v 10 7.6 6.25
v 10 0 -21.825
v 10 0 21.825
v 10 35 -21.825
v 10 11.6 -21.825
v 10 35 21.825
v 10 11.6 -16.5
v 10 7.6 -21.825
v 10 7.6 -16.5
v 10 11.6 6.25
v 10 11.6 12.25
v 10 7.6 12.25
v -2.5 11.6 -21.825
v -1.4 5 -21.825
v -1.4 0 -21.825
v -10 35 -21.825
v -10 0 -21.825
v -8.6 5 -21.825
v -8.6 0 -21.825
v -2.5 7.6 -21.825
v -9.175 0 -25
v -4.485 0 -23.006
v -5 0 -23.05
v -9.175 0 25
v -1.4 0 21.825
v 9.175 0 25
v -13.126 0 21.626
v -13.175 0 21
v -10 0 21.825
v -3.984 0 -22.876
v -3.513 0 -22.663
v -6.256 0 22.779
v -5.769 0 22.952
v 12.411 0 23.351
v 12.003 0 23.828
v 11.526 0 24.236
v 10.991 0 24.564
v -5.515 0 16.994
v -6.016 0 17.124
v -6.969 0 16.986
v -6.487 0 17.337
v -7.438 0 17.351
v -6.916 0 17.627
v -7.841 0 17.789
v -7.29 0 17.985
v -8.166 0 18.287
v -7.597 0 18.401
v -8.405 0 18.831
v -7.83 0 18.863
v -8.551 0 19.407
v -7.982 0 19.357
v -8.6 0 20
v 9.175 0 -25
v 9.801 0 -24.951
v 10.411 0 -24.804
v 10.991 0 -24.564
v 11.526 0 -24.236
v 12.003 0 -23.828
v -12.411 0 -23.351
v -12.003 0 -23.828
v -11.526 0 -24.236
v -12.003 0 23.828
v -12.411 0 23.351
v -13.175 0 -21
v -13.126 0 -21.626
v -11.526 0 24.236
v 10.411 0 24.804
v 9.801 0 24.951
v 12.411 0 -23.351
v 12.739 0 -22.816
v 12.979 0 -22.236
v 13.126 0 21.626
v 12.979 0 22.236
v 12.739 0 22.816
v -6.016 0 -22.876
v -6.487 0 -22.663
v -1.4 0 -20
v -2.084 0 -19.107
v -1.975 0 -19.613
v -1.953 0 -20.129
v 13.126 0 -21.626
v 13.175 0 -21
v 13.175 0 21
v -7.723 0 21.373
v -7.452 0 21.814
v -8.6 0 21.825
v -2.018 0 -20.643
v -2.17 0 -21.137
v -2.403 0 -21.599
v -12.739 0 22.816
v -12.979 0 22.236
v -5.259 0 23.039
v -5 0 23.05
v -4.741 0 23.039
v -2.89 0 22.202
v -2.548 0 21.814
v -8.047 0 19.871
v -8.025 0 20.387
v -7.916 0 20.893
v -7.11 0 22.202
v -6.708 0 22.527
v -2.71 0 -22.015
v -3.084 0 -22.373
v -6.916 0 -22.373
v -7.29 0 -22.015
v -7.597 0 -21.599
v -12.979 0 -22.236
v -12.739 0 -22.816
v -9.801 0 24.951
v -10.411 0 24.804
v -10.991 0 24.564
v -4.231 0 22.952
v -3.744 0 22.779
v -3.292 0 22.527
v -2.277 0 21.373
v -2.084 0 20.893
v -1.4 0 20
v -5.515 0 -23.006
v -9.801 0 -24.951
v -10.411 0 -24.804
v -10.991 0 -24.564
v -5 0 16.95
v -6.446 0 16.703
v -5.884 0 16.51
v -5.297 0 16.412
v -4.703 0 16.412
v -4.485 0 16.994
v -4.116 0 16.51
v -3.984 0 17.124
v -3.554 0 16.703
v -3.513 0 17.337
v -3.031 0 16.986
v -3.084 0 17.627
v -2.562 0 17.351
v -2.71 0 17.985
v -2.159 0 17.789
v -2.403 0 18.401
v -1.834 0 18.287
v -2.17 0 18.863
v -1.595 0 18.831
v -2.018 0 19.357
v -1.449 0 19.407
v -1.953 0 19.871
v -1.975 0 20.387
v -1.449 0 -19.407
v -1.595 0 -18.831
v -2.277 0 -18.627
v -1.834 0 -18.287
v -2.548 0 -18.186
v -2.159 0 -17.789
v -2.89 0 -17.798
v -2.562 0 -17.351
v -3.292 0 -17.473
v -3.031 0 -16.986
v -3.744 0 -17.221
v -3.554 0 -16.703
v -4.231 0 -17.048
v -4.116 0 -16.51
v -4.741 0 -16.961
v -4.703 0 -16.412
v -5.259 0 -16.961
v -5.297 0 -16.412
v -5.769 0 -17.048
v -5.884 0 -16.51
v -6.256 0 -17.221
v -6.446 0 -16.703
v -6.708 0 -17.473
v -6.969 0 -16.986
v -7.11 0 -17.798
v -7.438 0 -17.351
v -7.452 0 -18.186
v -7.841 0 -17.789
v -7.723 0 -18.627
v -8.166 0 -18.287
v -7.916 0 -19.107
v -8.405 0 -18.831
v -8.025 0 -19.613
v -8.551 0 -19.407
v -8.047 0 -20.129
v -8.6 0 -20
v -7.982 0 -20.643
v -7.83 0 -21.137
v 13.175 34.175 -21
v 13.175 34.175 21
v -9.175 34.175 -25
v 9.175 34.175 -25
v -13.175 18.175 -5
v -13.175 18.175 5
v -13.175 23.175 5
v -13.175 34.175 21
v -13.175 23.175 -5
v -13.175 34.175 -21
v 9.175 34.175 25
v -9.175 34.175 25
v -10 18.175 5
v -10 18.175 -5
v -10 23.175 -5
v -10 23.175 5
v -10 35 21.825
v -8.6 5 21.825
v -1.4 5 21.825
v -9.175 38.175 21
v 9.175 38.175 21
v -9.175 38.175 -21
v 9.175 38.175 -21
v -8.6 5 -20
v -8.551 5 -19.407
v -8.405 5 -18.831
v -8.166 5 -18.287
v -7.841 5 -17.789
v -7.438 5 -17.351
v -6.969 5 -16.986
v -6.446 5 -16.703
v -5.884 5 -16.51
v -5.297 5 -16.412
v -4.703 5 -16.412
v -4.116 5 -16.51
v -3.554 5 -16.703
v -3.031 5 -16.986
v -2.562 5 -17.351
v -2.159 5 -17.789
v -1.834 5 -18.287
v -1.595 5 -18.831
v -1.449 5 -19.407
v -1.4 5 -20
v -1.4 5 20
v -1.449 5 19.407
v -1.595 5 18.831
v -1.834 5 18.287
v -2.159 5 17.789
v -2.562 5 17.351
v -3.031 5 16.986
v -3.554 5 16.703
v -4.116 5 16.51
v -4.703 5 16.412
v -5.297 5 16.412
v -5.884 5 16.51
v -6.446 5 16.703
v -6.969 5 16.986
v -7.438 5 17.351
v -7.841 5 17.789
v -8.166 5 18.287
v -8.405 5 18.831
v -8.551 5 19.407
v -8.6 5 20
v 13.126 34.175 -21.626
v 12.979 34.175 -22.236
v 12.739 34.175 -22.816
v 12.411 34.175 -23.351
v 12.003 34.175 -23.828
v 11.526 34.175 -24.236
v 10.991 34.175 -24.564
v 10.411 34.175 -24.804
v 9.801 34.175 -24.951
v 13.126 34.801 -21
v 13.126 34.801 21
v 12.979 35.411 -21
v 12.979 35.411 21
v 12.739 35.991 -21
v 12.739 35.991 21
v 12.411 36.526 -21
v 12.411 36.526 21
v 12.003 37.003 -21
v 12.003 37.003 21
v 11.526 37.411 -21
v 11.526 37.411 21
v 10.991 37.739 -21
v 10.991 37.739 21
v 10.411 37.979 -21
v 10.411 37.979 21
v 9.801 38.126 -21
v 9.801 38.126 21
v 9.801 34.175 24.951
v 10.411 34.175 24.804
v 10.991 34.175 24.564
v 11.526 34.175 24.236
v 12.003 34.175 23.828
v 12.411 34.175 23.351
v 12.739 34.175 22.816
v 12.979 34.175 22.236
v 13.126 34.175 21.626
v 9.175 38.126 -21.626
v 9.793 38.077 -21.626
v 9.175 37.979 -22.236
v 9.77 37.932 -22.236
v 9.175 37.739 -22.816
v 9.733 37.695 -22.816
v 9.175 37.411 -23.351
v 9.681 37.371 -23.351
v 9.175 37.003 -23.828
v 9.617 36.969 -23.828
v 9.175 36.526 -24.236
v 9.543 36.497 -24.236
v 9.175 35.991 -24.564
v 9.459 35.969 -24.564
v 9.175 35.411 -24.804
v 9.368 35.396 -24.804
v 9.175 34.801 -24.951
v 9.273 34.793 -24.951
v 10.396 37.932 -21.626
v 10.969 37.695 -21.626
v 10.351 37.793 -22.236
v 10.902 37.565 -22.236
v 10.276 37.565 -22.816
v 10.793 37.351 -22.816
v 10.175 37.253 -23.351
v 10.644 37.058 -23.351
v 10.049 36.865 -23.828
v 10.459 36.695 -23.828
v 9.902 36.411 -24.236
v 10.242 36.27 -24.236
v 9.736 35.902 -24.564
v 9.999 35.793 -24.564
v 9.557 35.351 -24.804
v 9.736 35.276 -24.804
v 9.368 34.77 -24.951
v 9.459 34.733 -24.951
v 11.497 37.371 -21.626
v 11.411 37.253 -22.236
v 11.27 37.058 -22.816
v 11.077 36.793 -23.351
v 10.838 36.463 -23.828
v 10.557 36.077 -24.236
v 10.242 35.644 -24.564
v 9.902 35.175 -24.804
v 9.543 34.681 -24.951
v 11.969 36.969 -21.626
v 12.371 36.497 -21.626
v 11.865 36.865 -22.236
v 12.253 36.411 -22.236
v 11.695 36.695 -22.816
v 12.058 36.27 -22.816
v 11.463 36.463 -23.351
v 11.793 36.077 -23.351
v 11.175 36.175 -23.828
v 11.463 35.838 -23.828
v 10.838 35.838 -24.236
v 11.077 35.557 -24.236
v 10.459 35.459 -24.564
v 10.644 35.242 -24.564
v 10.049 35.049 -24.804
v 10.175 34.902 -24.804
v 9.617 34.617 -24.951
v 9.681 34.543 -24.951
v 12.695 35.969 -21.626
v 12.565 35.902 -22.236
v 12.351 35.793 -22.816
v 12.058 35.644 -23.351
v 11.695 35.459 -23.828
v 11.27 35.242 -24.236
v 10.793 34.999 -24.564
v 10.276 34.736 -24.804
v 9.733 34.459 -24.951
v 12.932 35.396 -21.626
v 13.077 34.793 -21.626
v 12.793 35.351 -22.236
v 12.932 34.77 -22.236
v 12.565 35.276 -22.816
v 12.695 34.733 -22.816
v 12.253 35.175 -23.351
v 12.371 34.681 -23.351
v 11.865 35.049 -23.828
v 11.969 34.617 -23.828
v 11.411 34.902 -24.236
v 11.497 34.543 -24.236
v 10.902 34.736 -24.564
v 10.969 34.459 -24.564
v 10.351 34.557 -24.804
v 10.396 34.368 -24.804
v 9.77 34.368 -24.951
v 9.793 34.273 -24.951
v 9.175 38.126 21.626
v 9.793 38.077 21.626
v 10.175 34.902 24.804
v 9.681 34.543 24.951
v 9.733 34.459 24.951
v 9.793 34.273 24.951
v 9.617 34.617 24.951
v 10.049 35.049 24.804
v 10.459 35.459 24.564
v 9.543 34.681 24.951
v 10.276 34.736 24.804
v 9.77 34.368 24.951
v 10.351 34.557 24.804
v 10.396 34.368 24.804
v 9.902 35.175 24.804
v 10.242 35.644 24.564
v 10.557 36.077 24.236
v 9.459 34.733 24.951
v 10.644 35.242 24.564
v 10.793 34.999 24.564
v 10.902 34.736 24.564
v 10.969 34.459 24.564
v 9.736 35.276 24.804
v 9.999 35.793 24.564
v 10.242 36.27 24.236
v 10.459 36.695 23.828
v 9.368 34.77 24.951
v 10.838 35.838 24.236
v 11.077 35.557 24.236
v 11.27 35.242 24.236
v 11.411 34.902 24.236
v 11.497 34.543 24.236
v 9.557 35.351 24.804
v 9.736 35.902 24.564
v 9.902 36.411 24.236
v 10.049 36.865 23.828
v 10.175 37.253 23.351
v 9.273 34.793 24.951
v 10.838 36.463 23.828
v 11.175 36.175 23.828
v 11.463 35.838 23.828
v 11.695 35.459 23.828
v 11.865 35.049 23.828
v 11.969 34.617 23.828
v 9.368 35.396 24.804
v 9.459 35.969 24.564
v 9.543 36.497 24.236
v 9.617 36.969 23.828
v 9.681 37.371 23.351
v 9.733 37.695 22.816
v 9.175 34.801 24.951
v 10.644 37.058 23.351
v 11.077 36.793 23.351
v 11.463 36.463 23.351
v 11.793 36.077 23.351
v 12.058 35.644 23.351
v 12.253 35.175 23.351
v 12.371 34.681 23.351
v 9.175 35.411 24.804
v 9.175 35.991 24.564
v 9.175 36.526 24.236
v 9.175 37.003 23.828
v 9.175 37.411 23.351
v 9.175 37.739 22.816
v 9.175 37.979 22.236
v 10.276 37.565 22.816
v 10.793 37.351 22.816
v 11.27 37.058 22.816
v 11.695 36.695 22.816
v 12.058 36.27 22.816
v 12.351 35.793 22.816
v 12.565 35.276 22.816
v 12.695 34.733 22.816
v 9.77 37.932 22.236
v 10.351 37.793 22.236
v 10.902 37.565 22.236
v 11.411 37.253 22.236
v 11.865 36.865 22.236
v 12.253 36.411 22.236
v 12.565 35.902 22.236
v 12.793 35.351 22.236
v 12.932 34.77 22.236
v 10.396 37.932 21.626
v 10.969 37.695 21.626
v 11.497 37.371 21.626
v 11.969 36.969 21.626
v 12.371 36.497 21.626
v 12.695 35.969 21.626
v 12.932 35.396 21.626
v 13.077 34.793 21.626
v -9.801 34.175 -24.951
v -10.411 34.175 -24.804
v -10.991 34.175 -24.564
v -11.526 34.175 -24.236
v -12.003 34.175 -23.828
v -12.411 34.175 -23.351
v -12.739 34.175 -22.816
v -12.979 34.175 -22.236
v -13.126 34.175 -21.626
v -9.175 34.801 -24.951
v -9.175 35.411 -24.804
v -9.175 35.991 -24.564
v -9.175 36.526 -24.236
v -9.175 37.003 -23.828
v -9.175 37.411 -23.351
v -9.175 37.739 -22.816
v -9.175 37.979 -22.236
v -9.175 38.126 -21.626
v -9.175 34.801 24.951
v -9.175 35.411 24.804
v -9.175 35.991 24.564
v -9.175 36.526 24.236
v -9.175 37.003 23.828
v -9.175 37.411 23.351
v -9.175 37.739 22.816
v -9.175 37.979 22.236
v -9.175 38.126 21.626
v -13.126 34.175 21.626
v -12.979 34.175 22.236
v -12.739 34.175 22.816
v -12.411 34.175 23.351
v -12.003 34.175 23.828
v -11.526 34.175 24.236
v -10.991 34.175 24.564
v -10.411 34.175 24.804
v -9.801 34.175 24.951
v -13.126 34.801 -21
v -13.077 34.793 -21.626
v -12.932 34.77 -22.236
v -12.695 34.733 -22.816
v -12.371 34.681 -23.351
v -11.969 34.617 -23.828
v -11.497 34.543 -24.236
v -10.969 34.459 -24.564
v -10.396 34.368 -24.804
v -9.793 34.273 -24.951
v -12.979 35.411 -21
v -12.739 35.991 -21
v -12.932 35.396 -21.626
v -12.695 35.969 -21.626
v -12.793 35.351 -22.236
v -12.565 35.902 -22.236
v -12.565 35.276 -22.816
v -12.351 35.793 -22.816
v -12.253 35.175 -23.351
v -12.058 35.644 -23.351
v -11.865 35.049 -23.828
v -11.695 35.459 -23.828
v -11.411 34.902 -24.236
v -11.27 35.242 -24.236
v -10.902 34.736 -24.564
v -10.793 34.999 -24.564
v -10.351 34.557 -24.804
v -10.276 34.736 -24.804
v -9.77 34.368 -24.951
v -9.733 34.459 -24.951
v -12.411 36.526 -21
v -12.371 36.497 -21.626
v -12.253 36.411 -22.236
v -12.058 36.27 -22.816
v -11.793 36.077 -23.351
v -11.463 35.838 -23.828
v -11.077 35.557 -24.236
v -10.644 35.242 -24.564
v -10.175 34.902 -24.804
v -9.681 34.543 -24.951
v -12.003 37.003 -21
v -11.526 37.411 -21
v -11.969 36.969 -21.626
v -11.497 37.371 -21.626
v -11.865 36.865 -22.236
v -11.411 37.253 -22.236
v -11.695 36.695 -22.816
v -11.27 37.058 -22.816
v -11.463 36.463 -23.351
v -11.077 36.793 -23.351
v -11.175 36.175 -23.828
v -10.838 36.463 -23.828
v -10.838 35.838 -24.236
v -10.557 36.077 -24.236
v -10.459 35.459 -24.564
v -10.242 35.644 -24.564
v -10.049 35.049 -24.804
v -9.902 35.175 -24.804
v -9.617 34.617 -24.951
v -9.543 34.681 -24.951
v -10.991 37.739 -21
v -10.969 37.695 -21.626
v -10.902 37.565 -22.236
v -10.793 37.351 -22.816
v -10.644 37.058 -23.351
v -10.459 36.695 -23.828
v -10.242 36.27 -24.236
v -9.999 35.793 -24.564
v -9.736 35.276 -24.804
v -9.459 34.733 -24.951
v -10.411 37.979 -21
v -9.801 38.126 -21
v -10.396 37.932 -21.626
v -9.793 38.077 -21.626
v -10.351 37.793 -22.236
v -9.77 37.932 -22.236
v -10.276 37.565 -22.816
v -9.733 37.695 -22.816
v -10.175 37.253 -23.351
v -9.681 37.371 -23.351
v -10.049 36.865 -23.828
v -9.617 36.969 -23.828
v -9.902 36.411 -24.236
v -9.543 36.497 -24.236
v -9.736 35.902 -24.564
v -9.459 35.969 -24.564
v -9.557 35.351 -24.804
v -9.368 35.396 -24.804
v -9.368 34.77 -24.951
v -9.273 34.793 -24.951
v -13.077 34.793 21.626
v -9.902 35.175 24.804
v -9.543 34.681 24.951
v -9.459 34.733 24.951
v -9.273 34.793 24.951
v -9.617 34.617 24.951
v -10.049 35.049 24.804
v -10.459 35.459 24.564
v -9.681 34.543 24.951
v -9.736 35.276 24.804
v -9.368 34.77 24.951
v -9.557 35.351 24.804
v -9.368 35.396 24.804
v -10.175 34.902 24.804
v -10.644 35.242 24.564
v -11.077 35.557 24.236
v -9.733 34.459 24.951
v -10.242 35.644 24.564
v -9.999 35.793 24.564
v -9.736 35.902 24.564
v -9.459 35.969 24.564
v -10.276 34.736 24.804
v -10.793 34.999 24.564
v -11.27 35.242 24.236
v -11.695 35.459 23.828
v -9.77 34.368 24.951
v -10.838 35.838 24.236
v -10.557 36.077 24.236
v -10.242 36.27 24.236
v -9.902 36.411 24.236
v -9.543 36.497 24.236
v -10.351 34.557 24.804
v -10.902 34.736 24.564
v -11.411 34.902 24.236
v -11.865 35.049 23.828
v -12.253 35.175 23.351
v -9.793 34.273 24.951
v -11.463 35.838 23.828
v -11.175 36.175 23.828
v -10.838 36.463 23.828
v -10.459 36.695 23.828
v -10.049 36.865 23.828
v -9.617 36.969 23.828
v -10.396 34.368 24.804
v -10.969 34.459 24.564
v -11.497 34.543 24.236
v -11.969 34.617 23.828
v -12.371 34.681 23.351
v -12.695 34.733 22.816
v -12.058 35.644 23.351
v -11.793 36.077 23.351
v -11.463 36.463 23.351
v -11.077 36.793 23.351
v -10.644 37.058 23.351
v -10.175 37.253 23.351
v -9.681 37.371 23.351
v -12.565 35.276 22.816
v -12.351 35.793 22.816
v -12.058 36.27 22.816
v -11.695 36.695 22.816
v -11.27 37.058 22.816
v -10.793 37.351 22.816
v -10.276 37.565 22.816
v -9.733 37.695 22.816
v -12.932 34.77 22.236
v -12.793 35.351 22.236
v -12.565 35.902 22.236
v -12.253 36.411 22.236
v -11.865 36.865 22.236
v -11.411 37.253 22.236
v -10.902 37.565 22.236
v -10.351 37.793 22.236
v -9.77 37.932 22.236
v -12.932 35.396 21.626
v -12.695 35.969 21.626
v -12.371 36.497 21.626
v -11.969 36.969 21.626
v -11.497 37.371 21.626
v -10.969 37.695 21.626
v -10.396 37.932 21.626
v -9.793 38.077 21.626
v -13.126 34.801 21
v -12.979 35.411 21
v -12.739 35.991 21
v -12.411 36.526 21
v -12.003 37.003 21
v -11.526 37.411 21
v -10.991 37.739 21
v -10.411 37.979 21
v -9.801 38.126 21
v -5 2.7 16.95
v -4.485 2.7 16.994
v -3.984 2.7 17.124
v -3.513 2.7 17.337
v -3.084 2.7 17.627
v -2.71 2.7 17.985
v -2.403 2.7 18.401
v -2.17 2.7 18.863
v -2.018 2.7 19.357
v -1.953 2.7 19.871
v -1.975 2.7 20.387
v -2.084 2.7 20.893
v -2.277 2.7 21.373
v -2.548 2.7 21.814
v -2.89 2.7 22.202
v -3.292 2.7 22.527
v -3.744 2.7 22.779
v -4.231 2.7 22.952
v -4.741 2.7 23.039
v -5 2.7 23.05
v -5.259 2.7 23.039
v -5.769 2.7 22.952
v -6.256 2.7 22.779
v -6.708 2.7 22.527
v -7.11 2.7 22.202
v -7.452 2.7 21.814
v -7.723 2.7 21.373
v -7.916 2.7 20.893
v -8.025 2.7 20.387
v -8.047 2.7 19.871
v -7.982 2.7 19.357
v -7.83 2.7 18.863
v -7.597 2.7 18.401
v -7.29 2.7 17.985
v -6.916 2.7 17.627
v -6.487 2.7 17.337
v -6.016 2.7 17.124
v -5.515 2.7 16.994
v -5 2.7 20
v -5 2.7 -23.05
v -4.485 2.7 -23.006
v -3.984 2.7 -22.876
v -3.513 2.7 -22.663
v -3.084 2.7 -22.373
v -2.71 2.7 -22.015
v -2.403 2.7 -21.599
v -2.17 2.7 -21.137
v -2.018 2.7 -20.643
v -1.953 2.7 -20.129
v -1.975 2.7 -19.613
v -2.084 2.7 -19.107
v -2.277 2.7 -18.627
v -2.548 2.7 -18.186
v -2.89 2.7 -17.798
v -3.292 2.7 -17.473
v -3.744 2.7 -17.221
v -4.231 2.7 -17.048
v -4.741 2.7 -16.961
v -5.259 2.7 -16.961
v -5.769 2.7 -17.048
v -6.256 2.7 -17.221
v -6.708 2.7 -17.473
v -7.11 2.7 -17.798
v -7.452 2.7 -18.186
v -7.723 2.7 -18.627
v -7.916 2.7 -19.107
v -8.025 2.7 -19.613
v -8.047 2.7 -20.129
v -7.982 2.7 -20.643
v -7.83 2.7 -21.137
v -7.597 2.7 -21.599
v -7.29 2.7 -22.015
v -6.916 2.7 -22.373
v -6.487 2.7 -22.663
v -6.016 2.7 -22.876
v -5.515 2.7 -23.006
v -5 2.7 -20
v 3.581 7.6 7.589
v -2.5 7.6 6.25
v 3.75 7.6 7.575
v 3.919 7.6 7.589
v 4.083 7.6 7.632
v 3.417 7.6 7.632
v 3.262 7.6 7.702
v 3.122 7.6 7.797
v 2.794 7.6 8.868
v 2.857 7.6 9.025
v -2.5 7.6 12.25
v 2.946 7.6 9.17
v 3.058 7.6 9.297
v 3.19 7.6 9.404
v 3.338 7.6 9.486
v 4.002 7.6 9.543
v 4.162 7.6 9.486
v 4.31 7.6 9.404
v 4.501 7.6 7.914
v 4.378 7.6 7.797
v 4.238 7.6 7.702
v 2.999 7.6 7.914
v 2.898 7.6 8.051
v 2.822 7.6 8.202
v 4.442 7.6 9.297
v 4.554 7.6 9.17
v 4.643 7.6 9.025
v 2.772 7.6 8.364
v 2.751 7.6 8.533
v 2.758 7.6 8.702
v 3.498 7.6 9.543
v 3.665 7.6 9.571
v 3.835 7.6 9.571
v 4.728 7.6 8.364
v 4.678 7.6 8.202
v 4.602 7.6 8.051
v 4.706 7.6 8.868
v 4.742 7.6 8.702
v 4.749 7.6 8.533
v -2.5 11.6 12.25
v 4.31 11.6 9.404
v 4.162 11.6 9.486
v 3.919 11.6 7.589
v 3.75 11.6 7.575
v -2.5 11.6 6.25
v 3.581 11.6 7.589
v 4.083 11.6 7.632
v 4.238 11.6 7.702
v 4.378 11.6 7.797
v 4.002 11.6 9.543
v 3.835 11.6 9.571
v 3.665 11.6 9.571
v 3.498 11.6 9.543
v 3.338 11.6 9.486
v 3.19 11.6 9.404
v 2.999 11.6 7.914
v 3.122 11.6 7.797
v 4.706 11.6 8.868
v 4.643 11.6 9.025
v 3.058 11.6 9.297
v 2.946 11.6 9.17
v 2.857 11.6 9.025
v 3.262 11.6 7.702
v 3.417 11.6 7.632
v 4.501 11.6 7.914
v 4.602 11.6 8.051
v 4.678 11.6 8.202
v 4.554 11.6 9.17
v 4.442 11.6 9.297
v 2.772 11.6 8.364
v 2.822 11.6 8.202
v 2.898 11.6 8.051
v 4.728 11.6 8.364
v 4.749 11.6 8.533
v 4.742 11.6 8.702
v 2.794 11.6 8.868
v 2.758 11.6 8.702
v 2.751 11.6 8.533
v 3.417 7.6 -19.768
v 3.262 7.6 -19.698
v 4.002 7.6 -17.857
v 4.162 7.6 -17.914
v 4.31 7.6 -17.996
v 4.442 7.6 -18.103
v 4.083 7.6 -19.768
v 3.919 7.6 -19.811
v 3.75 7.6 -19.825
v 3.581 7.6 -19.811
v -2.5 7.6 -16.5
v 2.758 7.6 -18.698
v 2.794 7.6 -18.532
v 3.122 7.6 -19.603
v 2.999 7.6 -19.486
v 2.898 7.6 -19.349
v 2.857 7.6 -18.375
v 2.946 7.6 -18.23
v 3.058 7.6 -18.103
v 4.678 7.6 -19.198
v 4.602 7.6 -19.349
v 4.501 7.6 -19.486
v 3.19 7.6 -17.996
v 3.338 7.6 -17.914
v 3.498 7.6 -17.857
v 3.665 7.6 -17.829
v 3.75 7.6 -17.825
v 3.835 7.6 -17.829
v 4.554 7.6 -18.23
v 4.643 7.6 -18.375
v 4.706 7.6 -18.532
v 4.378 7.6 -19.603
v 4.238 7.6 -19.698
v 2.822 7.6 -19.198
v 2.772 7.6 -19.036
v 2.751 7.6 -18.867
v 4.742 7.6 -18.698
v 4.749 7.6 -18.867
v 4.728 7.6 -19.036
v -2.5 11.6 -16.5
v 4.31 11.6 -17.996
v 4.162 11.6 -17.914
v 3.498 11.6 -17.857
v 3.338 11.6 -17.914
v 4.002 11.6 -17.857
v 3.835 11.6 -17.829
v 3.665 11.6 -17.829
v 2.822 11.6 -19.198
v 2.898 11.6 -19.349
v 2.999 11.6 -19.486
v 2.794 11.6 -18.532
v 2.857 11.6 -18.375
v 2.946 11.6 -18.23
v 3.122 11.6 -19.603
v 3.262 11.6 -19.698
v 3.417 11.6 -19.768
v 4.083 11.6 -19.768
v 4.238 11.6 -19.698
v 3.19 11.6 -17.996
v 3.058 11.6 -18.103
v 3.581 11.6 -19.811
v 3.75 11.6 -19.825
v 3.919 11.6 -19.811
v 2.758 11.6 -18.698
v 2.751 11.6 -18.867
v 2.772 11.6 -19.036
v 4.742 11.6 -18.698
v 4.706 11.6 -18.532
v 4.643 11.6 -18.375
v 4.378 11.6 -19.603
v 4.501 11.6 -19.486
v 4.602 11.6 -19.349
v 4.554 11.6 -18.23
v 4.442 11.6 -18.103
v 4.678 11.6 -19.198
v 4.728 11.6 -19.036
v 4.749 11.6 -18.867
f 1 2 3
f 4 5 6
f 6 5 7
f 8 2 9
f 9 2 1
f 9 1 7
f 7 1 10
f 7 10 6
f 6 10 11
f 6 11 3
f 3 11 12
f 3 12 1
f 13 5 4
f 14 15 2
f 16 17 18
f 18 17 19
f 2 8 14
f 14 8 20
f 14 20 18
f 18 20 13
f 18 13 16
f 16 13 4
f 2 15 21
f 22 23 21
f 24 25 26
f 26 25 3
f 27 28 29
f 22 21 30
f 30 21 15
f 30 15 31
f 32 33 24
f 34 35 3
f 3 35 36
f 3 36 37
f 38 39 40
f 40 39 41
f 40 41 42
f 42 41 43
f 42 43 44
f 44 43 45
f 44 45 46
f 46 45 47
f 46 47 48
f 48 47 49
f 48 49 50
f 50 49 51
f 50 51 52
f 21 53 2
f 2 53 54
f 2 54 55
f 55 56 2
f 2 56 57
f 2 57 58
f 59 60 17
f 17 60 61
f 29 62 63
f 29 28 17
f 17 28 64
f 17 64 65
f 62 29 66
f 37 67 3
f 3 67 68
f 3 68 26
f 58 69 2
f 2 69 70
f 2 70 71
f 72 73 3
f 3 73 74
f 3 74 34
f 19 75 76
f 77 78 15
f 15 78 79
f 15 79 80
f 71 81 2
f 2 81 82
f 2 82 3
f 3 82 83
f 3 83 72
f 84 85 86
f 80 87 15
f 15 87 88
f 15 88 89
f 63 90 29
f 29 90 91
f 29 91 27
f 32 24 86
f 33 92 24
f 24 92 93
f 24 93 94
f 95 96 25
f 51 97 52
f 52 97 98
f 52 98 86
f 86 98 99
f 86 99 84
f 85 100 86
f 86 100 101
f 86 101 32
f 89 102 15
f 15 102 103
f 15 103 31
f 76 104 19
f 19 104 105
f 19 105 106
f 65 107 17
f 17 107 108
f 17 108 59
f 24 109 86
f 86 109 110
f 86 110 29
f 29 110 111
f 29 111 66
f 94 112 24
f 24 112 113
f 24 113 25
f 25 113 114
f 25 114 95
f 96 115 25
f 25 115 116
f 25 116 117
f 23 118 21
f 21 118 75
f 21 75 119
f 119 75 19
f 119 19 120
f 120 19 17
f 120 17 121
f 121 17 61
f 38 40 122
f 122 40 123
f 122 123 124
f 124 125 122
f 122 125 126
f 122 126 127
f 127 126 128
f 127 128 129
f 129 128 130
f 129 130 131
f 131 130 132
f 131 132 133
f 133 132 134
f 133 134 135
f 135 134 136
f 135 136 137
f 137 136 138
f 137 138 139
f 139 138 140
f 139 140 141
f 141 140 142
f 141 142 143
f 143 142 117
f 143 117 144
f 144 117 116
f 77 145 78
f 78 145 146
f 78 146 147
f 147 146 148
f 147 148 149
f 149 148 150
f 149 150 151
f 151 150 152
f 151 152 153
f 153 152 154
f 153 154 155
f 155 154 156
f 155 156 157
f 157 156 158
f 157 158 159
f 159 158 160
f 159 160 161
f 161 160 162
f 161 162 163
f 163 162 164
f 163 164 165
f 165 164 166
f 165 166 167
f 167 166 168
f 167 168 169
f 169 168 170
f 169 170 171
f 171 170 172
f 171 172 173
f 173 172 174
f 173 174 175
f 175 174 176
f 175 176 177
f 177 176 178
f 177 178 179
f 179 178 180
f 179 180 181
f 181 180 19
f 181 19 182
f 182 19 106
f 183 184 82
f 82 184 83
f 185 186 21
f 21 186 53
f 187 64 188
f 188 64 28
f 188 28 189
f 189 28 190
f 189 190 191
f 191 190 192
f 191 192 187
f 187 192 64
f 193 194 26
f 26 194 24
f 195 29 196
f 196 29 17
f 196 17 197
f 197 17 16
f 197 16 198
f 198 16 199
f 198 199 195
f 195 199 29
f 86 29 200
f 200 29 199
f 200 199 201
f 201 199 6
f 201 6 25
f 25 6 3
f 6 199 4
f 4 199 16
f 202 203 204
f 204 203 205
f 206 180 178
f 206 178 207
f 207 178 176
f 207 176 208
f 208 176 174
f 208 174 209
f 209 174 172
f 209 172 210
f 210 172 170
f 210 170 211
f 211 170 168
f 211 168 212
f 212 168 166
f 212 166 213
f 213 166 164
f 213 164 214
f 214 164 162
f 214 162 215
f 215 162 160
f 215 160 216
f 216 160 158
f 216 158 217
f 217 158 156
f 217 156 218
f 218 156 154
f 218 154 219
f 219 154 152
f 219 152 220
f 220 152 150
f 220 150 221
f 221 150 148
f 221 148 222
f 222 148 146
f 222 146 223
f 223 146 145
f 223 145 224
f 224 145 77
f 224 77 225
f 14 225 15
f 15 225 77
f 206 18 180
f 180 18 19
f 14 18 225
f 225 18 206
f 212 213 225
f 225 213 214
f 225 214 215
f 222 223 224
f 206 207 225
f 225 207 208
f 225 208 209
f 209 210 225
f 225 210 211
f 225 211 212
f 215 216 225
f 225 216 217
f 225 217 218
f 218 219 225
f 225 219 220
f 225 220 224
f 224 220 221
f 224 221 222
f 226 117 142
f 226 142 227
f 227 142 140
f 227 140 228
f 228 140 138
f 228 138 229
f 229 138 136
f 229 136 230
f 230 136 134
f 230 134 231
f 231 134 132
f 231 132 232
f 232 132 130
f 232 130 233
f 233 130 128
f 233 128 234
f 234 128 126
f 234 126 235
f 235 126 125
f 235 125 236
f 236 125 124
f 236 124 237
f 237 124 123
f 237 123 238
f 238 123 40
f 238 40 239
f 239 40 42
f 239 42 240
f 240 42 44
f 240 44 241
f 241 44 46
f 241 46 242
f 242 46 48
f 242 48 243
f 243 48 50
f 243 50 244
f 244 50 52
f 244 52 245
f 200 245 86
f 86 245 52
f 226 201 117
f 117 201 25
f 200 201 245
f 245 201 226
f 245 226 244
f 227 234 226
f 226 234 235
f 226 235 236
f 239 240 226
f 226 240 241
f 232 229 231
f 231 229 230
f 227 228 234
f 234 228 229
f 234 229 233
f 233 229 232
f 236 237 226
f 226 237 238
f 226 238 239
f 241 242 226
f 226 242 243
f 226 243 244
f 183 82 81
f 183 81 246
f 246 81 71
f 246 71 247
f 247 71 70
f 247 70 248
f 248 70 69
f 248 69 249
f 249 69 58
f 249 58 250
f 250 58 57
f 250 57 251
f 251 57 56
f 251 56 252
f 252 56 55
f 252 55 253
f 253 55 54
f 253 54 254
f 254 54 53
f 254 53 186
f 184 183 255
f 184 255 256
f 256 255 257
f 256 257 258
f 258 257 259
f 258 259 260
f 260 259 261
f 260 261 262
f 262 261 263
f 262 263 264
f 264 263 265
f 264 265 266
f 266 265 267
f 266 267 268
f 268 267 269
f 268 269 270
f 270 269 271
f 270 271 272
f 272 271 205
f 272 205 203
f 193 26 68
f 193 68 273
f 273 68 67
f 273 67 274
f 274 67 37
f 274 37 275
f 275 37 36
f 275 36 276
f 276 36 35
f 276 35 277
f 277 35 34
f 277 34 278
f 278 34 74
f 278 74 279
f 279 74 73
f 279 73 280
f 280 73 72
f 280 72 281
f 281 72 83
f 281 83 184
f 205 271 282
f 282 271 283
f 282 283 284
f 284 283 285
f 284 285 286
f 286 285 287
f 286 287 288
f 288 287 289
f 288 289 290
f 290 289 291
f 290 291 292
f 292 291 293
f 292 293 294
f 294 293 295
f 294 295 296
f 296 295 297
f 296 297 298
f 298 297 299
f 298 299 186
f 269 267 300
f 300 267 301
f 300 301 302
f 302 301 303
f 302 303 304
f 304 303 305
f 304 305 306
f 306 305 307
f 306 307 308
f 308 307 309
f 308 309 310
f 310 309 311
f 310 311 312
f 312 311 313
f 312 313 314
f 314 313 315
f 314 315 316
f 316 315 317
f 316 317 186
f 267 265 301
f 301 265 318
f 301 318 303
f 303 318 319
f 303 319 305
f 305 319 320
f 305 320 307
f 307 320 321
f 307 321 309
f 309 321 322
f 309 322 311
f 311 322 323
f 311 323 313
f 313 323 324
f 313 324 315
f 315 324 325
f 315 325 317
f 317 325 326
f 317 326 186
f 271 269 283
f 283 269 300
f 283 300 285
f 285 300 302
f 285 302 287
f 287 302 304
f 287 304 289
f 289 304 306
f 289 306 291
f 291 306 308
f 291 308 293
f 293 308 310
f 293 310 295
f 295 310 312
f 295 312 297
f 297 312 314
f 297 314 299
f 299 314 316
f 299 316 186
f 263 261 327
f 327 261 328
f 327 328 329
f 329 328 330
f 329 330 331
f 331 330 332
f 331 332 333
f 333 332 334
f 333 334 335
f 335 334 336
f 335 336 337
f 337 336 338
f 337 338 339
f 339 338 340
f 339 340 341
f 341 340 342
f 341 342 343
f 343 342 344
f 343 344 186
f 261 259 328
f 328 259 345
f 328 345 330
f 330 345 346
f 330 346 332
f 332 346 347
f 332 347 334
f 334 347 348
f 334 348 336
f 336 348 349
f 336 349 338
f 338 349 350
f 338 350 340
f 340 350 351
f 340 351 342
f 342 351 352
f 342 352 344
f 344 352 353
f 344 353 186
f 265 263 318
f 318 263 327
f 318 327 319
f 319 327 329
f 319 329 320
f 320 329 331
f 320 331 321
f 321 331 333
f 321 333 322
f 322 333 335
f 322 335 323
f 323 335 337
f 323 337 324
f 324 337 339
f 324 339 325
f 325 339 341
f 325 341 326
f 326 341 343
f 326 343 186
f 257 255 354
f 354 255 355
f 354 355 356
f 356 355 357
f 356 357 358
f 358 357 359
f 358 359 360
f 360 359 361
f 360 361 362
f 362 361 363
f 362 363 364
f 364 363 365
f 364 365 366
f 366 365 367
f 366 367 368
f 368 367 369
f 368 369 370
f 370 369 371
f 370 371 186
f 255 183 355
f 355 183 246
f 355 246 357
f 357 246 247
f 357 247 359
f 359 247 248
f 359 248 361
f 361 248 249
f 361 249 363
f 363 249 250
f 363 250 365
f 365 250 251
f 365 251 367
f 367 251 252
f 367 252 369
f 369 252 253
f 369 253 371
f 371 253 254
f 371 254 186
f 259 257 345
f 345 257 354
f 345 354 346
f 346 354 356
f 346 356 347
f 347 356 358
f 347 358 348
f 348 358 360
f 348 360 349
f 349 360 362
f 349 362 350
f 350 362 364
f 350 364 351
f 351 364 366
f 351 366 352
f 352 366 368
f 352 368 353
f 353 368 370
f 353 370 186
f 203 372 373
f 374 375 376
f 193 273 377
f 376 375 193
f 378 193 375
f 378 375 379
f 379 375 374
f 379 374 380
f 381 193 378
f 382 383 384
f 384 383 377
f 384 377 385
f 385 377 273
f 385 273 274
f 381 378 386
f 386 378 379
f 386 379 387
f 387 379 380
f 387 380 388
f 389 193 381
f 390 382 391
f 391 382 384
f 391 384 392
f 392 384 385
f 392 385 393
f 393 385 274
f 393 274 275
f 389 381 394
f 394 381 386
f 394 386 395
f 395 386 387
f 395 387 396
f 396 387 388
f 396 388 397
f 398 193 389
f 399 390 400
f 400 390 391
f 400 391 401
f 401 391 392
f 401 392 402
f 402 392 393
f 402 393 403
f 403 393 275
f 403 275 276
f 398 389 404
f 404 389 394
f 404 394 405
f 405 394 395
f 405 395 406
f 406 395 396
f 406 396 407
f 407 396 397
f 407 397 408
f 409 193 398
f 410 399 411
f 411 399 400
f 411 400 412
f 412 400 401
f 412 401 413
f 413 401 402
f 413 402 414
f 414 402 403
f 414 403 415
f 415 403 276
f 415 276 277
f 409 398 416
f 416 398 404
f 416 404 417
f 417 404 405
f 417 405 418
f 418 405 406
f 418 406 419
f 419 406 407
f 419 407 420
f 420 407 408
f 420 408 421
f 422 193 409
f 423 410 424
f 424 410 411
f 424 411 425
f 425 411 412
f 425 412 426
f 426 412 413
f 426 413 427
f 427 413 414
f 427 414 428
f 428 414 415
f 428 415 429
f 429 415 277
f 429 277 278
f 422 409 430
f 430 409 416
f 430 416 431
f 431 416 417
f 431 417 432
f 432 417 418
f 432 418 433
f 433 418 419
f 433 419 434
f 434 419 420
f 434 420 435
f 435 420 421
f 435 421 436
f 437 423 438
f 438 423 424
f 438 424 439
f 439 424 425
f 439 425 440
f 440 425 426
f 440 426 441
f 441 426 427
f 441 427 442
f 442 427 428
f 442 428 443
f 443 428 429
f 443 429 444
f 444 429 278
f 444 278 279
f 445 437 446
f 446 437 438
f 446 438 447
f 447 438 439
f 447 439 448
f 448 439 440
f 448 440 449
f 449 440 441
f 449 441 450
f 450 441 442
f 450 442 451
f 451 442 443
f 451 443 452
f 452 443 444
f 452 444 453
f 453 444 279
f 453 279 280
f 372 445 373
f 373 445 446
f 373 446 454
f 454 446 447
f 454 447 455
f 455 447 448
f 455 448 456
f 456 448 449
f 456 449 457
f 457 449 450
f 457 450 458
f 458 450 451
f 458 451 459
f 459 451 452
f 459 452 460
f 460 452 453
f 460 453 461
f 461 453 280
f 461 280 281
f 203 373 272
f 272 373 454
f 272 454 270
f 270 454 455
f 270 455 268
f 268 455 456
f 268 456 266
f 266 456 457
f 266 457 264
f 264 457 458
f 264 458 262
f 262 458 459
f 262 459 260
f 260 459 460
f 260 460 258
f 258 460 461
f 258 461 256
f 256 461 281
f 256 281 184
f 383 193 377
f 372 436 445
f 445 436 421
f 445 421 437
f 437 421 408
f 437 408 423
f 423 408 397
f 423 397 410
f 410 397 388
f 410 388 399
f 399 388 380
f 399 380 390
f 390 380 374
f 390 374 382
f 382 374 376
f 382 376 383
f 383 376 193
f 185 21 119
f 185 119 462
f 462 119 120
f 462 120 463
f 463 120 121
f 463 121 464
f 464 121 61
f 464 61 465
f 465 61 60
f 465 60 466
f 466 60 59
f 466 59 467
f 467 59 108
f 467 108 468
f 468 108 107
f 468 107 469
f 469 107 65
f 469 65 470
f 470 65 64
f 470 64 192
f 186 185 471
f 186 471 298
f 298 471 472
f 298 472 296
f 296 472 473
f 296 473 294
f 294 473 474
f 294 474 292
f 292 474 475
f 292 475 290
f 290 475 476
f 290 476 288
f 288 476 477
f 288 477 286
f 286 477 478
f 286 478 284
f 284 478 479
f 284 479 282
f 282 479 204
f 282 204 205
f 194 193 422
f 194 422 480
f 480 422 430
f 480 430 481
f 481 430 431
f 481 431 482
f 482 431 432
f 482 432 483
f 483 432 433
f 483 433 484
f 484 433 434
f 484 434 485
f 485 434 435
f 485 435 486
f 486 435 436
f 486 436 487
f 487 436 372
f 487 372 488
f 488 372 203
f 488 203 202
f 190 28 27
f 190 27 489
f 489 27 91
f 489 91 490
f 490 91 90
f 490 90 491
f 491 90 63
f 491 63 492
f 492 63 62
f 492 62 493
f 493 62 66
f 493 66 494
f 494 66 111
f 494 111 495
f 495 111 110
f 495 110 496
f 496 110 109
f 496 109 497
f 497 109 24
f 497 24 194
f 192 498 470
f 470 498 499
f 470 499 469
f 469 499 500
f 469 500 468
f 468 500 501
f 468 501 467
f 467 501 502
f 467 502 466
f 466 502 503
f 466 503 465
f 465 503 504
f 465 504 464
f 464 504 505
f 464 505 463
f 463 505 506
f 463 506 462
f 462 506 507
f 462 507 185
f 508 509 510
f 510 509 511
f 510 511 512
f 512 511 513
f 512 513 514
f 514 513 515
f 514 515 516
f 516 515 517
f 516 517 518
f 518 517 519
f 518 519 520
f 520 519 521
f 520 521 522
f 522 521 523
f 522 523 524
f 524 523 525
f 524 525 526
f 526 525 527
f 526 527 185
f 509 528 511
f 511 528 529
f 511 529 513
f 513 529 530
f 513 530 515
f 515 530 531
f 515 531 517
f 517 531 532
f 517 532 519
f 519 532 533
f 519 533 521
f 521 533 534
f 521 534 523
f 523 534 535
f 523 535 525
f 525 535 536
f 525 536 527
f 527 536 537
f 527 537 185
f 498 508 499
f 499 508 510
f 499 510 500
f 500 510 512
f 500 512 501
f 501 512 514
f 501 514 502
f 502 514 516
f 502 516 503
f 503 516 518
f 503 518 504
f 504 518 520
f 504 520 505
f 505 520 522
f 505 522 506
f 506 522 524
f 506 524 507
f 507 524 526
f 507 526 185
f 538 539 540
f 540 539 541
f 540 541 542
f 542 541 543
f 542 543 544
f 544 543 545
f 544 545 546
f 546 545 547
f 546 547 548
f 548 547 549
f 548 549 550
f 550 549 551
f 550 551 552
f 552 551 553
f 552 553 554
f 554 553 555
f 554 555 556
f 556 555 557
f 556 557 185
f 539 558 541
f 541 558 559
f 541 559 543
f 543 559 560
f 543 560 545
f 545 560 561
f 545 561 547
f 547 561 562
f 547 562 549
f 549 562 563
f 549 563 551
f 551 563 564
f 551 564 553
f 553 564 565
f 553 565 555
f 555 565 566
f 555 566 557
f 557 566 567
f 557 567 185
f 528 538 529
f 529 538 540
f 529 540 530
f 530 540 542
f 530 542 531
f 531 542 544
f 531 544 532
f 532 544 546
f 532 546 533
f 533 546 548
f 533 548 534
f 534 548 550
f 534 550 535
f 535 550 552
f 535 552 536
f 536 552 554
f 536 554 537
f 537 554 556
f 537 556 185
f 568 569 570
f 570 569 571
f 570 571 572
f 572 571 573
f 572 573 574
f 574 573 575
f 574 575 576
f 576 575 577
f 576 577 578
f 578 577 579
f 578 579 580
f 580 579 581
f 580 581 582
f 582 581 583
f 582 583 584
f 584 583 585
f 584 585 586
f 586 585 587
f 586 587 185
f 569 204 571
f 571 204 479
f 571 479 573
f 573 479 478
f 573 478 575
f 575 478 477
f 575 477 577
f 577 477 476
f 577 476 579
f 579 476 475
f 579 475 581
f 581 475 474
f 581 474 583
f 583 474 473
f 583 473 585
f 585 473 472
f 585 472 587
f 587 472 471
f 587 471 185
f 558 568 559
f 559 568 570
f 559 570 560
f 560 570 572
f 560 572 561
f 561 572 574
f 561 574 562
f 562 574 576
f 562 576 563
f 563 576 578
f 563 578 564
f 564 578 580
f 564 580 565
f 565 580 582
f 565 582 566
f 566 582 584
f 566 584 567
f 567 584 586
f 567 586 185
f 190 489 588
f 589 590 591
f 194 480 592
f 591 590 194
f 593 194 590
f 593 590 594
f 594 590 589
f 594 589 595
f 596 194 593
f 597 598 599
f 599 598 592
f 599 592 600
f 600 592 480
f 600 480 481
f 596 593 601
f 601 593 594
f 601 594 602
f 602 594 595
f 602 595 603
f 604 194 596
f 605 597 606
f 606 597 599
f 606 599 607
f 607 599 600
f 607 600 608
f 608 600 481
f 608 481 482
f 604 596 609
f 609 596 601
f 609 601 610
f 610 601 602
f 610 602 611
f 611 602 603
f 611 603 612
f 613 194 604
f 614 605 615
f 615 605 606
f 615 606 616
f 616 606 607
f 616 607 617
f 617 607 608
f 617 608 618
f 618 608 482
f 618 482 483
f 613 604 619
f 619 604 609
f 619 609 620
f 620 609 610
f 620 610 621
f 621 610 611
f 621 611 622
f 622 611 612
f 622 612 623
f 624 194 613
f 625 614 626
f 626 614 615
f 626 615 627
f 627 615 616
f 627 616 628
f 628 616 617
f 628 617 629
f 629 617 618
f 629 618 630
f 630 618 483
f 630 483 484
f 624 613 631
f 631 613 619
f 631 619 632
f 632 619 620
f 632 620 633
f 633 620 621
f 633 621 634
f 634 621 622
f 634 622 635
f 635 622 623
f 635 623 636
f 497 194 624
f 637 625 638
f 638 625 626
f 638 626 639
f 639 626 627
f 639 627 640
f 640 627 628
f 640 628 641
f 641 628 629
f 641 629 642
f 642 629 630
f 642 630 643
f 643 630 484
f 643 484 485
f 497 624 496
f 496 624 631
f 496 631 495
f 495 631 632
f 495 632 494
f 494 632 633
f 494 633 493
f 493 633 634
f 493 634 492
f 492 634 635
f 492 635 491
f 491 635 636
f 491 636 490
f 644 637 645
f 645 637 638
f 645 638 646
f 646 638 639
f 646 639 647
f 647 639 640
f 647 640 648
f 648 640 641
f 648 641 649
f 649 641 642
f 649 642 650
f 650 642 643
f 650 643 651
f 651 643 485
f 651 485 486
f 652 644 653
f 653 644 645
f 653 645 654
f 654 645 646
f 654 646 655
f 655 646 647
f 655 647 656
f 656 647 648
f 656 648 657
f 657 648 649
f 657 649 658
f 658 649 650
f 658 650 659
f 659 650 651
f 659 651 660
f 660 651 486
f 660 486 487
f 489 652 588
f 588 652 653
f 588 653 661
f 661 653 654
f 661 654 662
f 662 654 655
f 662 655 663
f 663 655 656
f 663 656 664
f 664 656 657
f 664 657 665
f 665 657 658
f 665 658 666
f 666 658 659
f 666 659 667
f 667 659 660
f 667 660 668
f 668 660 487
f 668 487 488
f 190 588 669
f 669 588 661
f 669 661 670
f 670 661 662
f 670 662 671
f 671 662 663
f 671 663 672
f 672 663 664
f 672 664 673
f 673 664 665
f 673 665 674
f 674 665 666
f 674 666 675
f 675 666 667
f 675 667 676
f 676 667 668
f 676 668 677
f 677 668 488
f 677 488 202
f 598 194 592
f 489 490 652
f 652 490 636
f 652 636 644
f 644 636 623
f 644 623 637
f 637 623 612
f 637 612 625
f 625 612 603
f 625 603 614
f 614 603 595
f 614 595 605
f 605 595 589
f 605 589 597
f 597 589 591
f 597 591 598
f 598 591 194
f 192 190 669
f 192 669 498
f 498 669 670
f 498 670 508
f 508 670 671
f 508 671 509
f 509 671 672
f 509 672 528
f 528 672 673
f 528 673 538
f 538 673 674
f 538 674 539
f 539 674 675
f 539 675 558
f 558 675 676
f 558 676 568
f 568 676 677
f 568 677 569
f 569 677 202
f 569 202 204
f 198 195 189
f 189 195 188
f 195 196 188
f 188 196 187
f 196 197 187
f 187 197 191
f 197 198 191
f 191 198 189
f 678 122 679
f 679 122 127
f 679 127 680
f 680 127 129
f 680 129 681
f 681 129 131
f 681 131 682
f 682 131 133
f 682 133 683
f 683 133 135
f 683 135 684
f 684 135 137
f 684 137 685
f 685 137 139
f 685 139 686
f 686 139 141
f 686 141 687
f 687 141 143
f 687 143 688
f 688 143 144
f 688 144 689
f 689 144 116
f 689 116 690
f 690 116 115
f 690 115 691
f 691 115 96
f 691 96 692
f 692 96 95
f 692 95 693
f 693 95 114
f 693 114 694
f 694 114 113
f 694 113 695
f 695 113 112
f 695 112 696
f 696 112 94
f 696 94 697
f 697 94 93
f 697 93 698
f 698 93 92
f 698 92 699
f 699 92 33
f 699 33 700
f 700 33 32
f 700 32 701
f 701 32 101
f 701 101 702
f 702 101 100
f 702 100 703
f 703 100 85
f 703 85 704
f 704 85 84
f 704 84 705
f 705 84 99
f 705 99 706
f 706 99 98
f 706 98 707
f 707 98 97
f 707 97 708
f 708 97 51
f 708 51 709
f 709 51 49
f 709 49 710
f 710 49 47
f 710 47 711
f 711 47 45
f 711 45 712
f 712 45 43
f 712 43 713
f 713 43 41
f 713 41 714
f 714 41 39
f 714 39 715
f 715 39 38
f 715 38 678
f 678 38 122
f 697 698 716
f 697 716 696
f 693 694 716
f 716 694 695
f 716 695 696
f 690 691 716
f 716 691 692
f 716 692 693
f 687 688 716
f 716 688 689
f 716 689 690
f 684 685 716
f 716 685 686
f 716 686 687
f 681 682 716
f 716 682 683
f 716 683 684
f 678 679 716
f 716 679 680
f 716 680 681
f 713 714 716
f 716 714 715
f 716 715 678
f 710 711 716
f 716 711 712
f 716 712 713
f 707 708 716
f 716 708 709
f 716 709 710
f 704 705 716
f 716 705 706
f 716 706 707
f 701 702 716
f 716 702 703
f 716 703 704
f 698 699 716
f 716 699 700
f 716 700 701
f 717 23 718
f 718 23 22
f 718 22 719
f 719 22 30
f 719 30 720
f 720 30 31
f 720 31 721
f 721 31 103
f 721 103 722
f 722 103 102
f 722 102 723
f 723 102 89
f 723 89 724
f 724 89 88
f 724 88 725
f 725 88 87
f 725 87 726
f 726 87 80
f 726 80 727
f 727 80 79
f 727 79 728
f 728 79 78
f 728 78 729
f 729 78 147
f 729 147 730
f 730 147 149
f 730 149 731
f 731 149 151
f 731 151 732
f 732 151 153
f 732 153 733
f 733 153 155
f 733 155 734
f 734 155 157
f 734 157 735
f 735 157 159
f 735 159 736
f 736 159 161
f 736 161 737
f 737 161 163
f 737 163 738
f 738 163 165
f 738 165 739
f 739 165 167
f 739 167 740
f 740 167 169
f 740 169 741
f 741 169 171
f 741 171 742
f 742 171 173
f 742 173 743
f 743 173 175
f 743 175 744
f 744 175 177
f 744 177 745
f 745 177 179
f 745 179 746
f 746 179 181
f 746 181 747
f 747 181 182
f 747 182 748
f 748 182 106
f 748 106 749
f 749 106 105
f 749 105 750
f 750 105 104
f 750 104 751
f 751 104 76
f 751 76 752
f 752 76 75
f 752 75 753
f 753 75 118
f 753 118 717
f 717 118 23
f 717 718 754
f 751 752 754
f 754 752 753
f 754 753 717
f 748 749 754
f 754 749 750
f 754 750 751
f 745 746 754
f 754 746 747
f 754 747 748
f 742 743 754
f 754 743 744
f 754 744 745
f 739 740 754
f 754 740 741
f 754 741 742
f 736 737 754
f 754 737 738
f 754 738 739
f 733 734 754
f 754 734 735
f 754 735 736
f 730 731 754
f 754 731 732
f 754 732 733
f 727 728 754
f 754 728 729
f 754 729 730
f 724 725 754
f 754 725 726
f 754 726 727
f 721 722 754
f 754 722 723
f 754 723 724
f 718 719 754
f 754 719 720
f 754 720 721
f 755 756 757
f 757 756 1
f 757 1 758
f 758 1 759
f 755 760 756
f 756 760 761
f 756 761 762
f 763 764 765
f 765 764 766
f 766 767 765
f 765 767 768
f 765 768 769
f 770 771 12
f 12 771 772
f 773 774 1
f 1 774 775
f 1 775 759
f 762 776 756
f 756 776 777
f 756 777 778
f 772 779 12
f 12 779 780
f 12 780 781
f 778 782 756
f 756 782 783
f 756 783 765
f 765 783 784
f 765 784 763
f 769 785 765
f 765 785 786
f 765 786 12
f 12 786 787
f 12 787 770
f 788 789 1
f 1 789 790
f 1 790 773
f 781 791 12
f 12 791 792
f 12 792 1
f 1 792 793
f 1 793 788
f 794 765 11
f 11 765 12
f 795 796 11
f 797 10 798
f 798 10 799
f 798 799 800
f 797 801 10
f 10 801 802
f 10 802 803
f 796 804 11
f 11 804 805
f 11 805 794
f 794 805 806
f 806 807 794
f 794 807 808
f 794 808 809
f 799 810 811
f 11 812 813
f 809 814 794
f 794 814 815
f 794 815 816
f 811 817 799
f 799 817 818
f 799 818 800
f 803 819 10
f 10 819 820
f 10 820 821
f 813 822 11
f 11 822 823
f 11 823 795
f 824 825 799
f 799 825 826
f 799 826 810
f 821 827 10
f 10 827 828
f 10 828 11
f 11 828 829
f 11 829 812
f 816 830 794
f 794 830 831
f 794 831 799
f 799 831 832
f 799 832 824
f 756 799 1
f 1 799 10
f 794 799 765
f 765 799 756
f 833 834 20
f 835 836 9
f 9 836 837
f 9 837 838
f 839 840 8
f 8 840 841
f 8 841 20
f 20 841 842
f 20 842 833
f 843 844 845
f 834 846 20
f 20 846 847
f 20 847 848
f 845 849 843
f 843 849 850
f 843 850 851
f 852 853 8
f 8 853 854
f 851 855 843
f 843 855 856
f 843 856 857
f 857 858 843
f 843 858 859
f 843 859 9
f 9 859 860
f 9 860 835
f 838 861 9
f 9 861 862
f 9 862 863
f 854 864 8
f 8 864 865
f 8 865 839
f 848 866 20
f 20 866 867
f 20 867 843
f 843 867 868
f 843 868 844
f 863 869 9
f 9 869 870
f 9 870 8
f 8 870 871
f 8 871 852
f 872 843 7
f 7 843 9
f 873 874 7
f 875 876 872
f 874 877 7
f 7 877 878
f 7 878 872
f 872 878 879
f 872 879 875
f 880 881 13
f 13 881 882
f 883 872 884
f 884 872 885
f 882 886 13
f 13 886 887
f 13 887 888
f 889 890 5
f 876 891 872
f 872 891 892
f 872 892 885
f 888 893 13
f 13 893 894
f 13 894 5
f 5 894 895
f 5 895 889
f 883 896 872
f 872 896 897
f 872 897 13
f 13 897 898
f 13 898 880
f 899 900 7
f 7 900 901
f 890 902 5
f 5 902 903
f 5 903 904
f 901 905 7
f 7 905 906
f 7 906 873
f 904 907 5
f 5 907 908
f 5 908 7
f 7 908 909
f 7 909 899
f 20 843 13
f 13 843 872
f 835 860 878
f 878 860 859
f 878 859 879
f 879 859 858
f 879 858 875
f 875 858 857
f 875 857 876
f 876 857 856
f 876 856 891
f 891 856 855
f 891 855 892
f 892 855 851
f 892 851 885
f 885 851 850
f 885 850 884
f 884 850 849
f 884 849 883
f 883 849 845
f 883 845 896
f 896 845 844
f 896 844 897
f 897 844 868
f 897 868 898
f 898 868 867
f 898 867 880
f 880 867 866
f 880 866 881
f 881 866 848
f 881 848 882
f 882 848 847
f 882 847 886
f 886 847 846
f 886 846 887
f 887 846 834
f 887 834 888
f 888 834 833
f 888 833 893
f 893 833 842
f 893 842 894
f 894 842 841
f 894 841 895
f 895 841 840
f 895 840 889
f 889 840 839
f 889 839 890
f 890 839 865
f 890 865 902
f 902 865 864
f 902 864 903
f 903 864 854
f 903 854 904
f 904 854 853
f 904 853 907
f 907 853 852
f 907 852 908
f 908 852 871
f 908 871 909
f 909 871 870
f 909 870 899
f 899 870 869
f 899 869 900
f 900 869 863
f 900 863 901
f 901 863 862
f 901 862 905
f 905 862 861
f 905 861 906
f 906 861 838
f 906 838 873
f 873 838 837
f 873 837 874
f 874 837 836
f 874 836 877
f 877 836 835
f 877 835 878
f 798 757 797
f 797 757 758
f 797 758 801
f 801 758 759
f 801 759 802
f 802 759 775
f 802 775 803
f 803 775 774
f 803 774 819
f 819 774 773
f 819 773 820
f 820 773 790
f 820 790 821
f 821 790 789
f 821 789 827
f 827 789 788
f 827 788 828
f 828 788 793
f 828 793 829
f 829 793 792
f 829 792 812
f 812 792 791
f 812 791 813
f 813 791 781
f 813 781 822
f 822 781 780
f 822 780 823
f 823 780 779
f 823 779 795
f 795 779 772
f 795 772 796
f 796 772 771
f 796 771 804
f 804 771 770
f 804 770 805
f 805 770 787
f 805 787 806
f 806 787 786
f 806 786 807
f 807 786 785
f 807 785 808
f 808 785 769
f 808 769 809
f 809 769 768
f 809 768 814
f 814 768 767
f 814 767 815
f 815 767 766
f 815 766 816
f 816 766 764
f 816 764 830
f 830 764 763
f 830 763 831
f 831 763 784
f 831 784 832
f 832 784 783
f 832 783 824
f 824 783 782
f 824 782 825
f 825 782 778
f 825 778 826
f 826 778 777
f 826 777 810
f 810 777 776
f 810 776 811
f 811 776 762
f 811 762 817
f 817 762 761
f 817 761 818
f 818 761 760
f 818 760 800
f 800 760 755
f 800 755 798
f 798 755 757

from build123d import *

# Parameters (mm, degrees)
SKETCH1_W           = 26.35
SKETCH1_H           = 50
SKETCH1_W_2         = 20
SKETCH1_H_2         = 43.65
BOSS_EXTRUDE1_DEPTH = 35
SKETCH2_W           = 26.35
SKETCH2_H           = 50
BOSS_EXTRUDE2_DEPTH = 3.175
BOSS_EXTRUDE3_DEPTH = 5
FILLET1_R           = 4
SKETCH6_W           = 10
SKETCH6_H           = 5
CUT_EXTRUDE3_DEPTH  = 3.175
SKETCH8_R           = 3.05
CUT_EXTRUDE5_DEPTH  = 2.7
BOSS_EXTRUDE4_START = -3.175
SKETCH9_W           = 6
SKETCH9_H           = 4
BOSS_EXTRUDE4_DEPTH = 12.5
SKETCH10_R          = 1
CUT_EXTRUDE6_DEPTH  = 15.675


with BuildPart() as part:
    # Sketch1 → Boss-Extrude1 (new body)
    with BuildSketch(Plane(origin=(0, 0, 0), x_dir=(1, 0, 0), z_dir=(0, 1, 0))):
        Rectangle(SKETCH1_W, SKETCH1_H)
        Rectangle(SKETCH1_W_2, SKETCH1_H_2, mode=Mode.SUBTRACT)
    extrude(amount=BOSS_EXTRUDE1_DEPTH)

    # Sketch2 → Boss-Extrude2 (add)
    with BuildSketch(Plane(origin=(0, 35, 0), x_dir=(1, 0, 0), z_dir=(0, 1, 0))):
        Rectangle(SKETCH2_W, SKETCH2_H)
    extrude(amount=BOSS_EXTRUDE2_DEPTH)

    # Sketch4 → Boss-Extrude3 (add)
    with BuildSketch(Plane.XZ):
        with BuildLine():
            Line((-8.6, -20), (-8.6, -21.825))
            Line((-8.6, -21.825), (-1.4, -21.825))
            Line((-1.4, -21.825), (-1.4, -20))
            ThreePointArc((-1.4, -20), (-5, -16.4), (-8.6, -20))
        make_face()
        with BuildLine():
            Line((-8.6, 21.825), (-1.4, 21.825))
            Line((-1.4, 21.825), (-1.4, 20))
            ThreePointArc((-1.4, 20), (-5, 16.4), (-8.6, 20))
            Line((-8.6, 20), (-8.6, 21.825))
        make_face()
    extrude(amount=-BOSS_EXTRUDE3_DEPTH)

    # Fillet1
    fillet1_edges = [part.edges().sort_by_distance(p)[0] for p in [
        (-13.175, 38.175, 0),
        (0, 38.175, 25),
        (13.175, 38.175, 0),
        (0, 38.175, -25),
        (13.175, 19.0875, 25),
        (-13.175, 19.0875, 25),
        (-13.175, 19.0875, -25),
        (13.175, 19.0875, -25),
    ]]
    fillet(fillet1_edges, radius=FILLET1_R)

    # Sketch6 → Cut-Extrude3 (cut)
    with BuildSketch(Plane.ZY.offset(13.175)):
        with Locations((0, 20.675)):
            Rectangle(SKETCH6_W, SKETCH6_H)
    extrude(amount=-CUT_EXTRUDE3_DEPTH, mode=Mode.SUBTRACT)

    # Sketch8 → Cut-Extrude5 (cut)
    with BuildSketch(Plane.XZ):
        with Locations(Location((-5, -20, 0), (0, 0, 270))):
            Circle(SKETCH8_R)
        with Locations(Location((-5, 20, 0), (0, 0, 270))):
            Circle(SKETCH8_R)
    extrude(amount=-CUT_EXTRUDE5_DEPTH, mode=Mode.SUBTRACT)

    # Sketch9 → Boss-Extrude4 (add)
    with BuildSketch(Plane(origin=(13.175, 0, 0), x_dir=(0, 0, -1), z_dir=(1, 0, 0)).offset(BOSS_EXTRUDE4_START)):
        with Locations((19.5, 9.6)):
            Rectangle(SKETCH9_W, SKETCH9_H)
        with Locations((-9.25, 9.6)):
            Rectangle(SKETCH9_W, SKETCH9_H)
    extrude(amount=-BOSS_EXTRUDE4_DEPTH)

    # Sketch10 → Cut-Extrude6 (cut)
    with BuildSketch(Plane.XZ.offset(-7.6)):
        with Locations(Location((3.75, 8.575, 0), (0, 0, 270))):
            Circle(SKETCH10_R)
        with Locations(Location((3.75, -18.825, 0), (0, 0, 270))):
            Circle(SKETCH10_R)
    extrude(amount=-CUT_EXTRUDE6_DEPTH, mode=Mode.SUBTRACT)


solid = part.part
